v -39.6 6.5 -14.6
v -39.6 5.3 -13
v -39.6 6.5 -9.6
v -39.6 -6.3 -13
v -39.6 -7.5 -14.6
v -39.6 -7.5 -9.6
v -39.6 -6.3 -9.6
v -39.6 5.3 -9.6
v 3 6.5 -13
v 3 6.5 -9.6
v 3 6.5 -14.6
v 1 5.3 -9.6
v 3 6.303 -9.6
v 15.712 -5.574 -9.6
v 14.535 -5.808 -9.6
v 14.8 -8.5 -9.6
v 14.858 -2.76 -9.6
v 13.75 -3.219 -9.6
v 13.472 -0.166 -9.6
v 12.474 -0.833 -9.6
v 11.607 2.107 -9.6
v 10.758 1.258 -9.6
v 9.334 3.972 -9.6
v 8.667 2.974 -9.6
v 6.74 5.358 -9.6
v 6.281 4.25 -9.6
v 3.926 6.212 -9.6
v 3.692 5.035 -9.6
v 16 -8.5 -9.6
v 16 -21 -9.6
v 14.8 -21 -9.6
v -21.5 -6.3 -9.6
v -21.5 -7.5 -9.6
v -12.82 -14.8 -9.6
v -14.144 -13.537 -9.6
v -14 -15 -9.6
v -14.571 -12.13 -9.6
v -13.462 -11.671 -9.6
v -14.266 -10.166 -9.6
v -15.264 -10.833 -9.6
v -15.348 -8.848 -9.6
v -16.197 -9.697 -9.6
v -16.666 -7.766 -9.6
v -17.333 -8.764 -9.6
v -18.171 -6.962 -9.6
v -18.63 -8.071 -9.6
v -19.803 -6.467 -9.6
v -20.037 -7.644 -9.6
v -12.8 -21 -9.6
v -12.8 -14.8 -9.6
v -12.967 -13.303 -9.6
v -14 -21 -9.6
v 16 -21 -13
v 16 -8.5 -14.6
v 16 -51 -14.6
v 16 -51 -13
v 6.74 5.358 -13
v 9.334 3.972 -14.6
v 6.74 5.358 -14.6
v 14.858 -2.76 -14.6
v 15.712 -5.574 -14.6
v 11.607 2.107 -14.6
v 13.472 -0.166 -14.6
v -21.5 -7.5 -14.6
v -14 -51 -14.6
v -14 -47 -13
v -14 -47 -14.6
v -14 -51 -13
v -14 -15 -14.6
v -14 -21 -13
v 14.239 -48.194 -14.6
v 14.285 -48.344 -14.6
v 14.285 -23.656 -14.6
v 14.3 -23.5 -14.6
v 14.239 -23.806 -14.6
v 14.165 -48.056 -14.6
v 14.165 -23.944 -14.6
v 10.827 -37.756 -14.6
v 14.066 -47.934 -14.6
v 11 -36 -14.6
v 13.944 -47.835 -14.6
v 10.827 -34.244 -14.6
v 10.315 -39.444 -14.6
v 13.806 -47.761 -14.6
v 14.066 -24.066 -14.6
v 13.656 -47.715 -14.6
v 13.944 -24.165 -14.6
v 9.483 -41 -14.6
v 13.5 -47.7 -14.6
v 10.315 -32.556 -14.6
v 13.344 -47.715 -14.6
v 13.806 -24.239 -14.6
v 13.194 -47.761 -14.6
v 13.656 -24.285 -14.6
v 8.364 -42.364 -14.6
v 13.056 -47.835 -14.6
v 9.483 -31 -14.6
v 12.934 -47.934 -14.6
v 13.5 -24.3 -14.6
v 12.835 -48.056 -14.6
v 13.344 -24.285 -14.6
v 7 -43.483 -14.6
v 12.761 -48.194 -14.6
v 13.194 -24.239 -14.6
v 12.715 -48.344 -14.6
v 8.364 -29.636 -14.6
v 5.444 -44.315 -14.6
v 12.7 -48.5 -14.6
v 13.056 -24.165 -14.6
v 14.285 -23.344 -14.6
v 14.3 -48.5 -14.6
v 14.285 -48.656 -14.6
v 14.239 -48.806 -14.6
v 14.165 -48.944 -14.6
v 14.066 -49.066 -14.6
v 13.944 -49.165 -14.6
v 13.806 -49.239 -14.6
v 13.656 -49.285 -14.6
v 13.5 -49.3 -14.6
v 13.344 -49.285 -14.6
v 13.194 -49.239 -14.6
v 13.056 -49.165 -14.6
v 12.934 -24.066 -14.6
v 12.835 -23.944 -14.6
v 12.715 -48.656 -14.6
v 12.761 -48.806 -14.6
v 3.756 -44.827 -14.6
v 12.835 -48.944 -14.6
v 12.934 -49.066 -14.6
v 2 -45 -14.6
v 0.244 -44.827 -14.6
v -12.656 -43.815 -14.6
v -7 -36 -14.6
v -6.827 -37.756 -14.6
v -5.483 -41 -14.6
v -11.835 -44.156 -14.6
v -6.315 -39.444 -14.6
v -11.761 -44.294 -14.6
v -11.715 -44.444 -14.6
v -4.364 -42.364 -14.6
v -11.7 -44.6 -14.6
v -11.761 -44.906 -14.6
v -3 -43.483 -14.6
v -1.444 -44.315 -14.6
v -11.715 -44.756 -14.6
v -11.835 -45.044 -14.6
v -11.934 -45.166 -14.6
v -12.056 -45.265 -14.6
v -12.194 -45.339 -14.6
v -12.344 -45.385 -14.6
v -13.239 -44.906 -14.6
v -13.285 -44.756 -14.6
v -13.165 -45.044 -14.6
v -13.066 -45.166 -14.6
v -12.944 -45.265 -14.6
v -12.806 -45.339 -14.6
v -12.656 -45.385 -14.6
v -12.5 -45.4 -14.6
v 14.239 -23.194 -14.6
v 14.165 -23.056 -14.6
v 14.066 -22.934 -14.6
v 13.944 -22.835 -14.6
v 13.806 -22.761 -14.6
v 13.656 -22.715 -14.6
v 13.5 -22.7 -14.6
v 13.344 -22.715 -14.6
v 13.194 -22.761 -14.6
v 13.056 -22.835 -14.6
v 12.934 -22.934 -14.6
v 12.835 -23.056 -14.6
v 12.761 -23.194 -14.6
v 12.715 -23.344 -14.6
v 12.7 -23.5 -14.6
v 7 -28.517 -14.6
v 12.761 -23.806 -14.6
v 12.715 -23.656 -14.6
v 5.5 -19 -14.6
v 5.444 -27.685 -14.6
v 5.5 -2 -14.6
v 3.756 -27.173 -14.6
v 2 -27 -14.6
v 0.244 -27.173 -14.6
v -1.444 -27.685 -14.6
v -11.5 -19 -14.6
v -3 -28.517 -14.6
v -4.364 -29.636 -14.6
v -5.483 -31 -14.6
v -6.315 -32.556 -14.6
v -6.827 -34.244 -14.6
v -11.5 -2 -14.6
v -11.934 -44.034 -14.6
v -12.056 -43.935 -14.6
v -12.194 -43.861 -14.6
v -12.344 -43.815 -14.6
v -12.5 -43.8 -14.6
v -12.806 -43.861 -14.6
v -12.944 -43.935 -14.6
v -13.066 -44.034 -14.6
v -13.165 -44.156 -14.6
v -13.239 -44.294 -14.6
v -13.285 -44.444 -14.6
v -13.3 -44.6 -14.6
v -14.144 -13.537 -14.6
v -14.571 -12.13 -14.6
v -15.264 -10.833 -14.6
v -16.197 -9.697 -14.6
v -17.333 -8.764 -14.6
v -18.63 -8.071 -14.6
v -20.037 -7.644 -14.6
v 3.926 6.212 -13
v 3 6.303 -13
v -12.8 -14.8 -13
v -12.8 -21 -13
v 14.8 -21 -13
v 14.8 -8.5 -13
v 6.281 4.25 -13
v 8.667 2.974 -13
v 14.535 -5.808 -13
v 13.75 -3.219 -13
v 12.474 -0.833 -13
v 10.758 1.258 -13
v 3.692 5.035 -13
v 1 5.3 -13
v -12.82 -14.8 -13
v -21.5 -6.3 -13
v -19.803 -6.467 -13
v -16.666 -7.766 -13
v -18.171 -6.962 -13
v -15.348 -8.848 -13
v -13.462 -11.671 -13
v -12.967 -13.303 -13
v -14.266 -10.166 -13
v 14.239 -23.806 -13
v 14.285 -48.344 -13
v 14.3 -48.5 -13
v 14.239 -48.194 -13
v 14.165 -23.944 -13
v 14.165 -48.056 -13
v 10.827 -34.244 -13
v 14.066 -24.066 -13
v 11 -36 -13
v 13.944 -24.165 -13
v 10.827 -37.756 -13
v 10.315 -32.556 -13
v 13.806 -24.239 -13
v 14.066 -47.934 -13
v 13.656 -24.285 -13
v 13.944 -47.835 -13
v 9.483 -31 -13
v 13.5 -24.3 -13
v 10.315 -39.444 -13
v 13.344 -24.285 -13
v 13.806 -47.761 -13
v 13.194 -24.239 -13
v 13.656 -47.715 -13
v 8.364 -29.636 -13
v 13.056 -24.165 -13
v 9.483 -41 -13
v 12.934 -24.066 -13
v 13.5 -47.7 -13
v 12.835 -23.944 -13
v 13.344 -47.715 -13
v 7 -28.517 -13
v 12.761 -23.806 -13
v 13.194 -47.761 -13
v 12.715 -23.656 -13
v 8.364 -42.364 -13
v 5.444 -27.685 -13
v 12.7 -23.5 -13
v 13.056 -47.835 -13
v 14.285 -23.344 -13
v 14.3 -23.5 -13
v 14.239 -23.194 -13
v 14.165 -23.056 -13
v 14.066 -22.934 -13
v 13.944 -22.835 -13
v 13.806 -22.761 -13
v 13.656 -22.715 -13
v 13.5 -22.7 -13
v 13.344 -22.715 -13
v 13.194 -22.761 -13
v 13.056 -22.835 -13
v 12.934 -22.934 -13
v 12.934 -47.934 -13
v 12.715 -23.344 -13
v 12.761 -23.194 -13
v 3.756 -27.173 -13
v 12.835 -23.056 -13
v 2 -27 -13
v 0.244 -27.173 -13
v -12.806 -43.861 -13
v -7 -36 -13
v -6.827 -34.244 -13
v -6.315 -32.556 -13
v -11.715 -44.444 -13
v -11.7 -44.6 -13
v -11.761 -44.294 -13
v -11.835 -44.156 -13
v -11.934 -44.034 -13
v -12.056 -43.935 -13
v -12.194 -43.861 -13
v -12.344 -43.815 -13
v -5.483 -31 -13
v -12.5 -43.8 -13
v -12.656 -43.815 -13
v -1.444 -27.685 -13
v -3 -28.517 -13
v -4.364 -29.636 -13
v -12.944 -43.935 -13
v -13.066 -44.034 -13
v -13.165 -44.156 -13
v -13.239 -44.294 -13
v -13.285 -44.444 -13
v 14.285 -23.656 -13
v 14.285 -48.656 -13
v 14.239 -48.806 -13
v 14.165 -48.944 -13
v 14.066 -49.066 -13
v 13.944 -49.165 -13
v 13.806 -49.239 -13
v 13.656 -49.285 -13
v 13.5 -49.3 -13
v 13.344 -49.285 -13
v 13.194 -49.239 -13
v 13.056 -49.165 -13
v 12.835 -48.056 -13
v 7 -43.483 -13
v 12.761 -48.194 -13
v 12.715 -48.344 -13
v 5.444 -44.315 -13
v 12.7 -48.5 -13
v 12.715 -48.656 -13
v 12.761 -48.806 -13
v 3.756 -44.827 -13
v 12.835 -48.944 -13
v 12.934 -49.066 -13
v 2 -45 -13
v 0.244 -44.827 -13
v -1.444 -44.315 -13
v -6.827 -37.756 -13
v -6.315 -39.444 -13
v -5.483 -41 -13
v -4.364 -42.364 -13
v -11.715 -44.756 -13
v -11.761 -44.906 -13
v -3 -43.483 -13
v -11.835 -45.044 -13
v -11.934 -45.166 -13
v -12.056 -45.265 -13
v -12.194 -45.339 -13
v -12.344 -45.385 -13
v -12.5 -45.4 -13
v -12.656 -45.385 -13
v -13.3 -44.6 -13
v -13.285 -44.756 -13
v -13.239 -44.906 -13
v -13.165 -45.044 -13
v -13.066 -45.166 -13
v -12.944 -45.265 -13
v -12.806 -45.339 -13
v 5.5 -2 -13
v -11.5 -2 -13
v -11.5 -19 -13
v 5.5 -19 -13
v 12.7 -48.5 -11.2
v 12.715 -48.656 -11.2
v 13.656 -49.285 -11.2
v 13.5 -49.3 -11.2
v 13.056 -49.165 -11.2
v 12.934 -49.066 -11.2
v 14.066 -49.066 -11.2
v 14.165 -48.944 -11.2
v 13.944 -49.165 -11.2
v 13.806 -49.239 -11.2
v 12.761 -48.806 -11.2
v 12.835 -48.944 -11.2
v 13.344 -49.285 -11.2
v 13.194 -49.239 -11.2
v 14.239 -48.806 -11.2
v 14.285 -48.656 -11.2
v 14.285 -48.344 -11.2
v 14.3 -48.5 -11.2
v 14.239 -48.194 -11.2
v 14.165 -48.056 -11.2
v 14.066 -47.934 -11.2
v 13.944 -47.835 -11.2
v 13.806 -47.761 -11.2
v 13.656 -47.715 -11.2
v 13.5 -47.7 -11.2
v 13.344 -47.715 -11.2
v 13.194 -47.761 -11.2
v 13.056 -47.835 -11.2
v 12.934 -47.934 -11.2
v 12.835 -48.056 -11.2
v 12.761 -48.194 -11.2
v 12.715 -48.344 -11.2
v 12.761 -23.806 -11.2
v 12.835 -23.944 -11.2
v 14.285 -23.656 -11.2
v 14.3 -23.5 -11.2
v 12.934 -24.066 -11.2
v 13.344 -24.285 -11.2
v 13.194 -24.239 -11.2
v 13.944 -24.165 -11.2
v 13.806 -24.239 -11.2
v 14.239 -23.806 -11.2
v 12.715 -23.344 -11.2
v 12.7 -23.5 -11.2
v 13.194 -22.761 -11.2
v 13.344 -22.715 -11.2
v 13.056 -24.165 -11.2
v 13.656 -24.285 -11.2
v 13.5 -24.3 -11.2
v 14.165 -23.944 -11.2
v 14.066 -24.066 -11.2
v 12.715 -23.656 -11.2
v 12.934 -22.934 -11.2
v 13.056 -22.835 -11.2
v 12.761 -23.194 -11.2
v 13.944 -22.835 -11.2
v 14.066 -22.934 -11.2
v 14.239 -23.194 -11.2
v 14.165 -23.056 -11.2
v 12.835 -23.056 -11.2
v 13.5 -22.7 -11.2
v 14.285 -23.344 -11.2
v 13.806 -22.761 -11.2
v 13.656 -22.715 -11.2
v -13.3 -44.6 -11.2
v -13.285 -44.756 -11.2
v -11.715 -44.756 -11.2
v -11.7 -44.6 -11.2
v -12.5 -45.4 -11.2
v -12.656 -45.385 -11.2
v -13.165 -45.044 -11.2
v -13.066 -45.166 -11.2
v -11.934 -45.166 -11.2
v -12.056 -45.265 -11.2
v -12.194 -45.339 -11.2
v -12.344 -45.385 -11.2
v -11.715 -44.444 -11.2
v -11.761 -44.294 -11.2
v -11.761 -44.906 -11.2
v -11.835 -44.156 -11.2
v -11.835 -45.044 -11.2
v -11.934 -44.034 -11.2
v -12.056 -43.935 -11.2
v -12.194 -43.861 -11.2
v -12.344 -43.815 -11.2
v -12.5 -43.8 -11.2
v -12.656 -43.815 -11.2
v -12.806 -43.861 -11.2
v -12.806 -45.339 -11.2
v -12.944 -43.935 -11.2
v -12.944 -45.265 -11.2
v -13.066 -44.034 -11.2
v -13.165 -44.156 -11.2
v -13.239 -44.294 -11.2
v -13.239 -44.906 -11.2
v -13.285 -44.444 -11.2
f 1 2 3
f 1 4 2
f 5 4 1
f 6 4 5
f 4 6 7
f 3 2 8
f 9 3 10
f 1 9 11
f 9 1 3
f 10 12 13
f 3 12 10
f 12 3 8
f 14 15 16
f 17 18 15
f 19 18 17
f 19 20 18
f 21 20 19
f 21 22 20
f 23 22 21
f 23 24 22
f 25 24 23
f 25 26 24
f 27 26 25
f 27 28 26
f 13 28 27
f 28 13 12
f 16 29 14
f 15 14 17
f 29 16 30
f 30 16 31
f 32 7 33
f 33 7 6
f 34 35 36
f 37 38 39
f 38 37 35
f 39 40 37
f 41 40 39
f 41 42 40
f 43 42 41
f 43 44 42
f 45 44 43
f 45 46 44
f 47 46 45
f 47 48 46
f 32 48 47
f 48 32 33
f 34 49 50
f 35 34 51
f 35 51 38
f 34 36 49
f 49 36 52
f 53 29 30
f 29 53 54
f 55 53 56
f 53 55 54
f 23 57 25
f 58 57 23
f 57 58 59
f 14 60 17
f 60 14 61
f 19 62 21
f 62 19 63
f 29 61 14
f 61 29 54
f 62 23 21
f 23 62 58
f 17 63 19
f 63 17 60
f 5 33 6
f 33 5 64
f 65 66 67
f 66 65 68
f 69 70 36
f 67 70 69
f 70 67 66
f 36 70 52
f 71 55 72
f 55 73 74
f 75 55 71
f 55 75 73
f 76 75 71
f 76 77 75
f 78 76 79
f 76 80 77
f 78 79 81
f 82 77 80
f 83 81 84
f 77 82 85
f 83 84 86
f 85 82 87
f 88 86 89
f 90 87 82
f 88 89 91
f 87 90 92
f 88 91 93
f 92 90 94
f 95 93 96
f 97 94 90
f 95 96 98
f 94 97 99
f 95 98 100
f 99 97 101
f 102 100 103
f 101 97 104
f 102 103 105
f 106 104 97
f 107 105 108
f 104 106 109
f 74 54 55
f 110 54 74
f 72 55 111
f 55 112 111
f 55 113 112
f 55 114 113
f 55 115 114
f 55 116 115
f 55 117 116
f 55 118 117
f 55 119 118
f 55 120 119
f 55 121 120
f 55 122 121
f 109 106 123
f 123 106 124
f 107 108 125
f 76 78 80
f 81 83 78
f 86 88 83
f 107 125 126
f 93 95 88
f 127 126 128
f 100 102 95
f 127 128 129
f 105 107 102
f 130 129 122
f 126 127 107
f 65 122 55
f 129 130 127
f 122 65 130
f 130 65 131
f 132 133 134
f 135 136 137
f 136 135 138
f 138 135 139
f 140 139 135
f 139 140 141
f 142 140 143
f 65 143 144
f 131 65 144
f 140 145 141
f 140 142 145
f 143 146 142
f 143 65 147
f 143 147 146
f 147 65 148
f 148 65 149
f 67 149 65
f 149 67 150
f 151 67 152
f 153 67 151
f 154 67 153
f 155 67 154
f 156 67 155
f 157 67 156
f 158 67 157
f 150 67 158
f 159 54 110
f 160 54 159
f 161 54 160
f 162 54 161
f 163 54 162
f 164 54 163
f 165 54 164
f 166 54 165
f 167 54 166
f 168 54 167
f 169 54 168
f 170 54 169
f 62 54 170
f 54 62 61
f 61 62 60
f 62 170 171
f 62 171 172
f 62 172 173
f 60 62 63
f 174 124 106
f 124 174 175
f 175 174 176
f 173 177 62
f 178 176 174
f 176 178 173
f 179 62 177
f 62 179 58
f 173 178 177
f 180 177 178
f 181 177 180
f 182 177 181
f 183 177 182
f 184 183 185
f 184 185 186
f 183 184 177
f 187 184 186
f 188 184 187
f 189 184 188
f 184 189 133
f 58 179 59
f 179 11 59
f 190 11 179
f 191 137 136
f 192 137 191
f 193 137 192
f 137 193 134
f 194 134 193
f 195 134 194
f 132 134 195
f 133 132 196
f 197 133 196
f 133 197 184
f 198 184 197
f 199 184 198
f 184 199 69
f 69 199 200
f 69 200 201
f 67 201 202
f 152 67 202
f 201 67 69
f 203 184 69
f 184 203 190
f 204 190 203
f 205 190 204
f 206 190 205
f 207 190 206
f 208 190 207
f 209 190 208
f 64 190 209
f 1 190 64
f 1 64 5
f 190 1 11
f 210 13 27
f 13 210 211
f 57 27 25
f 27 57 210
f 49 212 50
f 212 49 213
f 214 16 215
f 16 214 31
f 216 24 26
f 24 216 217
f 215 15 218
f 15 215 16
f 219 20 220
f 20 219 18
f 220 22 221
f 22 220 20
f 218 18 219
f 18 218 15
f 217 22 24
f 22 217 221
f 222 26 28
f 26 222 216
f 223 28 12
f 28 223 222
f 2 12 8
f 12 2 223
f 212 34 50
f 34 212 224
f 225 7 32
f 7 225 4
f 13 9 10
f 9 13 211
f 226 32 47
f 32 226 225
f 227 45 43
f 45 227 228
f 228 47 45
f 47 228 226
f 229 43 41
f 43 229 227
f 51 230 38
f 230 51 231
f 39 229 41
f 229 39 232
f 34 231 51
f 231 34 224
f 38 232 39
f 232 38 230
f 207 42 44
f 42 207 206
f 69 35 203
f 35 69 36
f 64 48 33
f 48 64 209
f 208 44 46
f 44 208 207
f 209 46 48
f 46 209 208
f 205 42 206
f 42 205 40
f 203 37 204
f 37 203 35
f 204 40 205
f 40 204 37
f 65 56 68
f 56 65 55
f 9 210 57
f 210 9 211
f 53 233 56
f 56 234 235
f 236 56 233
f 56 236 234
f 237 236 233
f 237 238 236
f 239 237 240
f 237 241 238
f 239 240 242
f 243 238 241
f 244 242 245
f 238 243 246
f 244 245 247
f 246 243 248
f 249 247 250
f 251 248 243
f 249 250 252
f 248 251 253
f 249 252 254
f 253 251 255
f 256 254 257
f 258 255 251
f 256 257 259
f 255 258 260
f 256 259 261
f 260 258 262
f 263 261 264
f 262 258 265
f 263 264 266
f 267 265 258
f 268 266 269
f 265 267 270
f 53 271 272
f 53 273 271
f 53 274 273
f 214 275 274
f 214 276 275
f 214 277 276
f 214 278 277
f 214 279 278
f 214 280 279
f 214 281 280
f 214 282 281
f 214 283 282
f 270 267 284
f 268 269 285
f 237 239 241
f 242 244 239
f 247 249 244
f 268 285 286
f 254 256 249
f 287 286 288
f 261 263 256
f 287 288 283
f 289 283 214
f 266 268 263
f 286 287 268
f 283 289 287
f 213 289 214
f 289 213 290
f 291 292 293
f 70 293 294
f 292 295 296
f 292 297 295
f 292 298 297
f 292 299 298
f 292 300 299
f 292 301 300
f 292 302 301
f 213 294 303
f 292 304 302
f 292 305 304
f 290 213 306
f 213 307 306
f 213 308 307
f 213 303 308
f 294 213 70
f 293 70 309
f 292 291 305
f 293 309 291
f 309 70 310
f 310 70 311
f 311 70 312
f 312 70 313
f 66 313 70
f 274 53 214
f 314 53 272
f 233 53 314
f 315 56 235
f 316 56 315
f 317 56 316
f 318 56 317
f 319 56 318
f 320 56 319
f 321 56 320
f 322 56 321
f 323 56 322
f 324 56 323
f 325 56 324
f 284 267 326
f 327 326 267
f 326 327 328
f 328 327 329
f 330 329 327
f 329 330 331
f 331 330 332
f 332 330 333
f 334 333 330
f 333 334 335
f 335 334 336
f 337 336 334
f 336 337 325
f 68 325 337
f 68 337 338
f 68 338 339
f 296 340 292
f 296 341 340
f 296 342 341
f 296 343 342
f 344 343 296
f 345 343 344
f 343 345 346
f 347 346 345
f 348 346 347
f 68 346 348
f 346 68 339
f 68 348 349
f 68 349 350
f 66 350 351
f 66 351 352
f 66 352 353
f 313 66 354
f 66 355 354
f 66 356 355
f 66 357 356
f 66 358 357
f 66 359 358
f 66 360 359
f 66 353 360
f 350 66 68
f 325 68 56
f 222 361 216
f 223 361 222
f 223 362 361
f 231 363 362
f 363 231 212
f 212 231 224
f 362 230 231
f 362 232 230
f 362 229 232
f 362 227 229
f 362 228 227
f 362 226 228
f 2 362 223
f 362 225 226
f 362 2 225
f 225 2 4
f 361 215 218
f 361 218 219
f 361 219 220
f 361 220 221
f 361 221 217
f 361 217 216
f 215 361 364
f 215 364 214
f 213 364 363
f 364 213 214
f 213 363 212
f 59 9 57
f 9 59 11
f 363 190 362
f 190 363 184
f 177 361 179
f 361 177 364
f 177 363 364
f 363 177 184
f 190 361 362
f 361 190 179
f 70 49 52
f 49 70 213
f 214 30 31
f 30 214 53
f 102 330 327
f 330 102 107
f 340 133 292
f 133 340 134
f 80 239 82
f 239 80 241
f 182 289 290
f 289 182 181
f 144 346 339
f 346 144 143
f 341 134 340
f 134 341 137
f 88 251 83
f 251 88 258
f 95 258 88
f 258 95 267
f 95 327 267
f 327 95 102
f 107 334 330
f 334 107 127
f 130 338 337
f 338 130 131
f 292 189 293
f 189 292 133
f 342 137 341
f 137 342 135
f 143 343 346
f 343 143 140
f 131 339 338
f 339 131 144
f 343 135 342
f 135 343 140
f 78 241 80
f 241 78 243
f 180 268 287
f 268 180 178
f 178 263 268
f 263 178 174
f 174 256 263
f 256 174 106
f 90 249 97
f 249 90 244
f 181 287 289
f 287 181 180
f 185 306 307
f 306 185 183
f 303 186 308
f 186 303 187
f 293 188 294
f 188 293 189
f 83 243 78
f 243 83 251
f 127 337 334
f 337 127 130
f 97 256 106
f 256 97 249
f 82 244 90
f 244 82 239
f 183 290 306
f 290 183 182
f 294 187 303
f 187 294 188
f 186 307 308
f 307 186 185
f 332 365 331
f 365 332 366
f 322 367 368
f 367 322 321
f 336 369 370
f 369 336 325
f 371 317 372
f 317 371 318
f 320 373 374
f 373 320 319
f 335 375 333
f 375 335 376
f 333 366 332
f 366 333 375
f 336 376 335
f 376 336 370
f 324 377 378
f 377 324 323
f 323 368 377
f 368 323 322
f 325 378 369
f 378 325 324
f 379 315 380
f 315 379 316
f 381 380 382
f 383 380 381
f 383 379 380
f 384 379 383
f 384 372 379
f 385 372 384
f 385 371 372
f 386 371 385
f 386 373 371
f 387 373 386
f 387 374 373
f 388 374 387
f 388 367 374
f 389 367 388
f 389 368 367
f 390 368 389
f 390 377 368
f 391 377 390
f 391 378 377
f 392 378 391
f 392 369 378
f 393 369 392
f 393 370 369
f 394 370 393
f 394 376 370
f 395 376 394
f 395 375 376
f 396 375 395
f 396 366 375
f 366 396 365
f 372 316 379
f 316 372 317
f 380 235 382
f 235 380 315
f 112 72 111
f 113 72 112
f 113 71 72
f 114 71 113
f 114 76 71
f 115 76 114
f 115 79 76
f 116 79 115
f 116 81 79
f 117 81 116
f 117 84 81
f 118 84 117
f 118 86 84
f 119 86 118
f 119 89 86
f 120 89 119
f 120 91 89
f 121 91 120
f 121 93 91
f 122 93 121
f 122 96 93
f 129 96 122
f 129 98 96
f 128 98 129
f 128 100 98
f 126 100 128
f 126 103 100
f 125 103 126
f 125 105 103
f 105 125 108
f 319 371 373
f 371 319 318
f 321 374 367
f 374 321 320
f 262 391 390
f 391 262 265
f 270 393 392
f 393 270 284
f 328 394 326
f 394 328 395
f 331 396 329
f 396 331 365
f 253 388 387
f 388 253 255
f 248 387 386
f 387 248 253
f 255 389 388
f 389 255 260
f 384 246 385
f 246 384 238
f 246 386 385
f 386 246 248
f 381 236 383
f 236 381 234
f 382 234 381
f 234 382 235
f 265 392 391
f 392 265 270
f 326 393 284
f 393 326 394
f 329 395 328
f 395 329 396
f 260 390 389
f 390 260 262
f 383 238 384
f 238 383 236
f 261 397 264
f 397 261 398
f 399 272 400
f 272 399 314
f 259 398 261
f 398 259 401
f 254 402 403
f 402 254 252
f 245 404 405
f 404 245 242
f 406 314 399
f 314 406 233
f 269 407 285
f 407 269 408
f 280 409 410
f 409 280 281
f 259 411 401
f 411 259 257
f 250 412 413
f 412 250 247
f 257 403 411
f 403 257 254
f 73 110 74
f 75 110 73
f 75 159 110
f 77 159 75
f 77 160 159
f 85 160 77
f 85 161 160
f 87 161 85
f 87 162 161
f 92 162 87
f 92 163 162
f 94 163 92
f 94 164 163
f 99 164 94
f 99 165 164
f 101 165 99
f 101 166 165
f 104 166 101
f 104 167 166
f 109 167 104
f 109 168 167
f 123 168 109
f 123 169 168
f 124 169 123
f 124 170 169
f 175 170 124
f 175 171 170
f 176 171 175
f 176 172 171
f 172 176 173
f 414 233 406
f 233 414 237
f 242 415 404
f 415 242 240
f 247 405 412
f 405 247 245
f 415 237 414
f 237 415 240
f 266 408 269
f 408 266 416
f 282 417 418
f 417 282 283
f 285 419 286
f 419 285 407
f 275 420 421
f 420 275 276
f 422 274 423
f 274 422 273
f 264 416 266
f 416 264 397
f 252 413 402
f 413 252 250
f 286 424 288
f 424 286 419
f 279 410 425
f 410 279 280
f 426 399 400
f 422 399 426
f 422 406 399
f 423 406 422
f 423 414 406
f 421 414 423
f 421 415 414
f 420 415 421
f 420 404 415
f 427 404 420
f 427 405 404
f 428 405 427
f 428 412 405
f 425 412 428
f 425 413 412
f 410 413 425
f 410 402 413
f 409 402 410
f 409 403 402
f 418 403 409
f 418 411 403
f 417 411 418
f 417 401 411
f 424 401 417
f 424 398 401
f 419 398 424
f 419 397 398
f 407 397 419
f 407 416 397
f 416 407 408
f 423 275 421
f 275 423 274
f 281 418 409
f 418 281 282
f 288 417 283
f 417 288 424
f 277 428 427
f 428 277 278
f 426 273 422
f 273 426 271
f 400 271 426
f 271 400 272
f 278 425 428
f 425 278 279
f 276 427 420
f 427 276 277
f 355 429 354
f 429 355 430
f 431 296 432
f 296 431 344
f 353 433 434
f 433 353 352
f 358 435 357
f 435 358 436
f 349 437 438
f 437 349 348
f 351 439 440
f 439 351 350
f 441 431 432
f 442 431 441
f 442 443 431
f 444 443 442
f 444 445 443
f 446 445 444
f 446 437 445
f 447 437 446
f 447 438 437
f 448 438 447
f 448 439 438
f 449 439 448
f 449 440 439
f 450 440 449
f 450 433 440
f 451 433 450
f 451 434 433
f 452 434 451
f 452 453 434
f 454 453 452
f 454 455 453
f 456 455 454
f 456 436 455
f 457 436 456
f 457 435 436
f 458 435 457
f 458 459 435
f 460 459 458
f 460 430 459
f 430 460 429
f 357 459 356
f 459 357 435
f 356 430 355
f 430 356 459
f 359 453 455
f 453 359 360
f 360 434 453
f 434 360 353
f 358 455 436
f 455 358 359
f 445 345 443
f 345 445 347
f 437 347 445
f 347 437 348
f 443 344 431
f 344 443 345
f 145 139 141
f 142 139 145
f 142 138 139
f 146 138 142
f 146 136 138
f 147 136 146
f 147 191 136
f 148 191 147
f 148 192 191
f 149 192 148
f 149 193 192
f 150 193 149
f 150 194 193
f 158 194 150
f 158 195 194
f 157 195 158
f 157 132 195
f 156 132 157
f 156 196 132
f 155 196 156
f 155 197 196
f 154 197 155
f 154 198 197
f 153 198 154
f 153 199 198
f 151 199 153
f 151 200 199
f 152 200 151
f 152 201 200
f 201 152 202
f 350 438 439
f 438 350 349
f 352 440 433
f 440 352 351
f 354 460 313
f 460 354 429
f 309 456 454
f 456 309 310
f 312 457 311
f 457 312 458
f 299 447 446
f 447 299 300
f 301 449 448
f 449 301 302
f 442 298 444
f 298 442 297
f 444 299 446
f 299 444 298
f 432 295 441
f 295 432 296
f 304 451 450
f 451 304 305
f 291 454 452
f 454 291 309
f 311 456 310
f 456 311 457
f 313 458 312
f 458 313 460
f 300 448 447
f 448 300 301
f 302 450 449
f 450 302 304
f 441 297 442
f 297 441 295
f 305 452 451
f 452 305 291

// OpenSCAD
//lol my idea for a fan duct in the cartridge slot.

$fn=32;

//measurements

//cart lip z
cz=8;

//between case plastic and top of cartridge "notches"
//py=39;

//from bottom of lower peg to cart top lip
py=27-4;

//outside cartridge slot y
mx=61.6;

//px=0; //redefined later.

//cart plate thickness
pz=1.6;

//lower mount offset x
lmox=62;

// upper left mount offset y (from lower)
ulmoy=19;

// upper right mount offset y (from lower)
urmoy=13;

// mount diameter
md=4;

//plate-x
px=lmox+md;

//fan dimensions
fx=30;
fy=30;
fz=3.4;
//aperture
fad=18;
//aperture x offset
faxo=-1;

//fan y offset
fyo=2;

fxo=4;

//mount hole dia
fmhd=1.6;

//mount hole coord
//top
ftmhy=27.5;
ftmhx=2.5;

//side
fsmhy=2.5;
fsmhx=2.5;

//lower
flmhy=8.6+fx/2;
flmhx=28.5;

//hold diameter
hd=1.8;

//shroud stuff
//wall thickness
wt=1.2;

//heatsink
hsx=17;
hsy=17;
hsz=6;

//cpu
cpuxo=-3;

//duct extra y
dey=2;

//for other modules
hclearance=8.6;
vclearance=14.25;

//translate([-fx/2+cpuxo,hsy,cz+pz])
//translate([-fx/2,-fy/2,fz/2])
//fan();
//fan_mount_holes();

//final_part();
top_duct_print();
//bottom_plate_print();

module top_duct_print(){
rotate([180,0,0])
top_duct();
}

module bottom_plate_print(){
    difference() {
        final_part();
        fan_cut_block();
        upper_cut_box();
        cartplate_mounts();
        cartplate_mount_holes();
    }
}

module top_duct(){
union() {
        difference() {
            final_part();
            fan_cut_block();
            lower_cut_box();
        //        cartplate_mounts();
        //        cartplate_mount_holes();
        }
            translate([cpuxo+fxo,py+fy/2-fyo,cz+pz+pz])
            //rotate([0,0,-90])
        mirror()    
        fan_mount_holes();


    }
}
//final_part();
module final_part() {
union(){
    duct_base();
    fan_entry();
    duct_bottom_walls();
    duct_corner_wall();
//    translate([cpuxo,py+fy/2-fyo,cz+pz+pz])
//    rotate([0,0,-90])
//    #fan_mount_holes();

    difference() {
    translate([0,0,fz+pz])
        duct_base();
        
        heatsink_cut();
    }
    difference() {
        base_plate();
        cartplate_mounts();
        cartplate_mount_holes();

    }
    }
}



module duct_base() {
difference() {
    duct_outside_body();
    duct_inside_cut();
    //fan body
//    translate([cpuxo-fx/2,hsy,cz])
//    #cube([fx,fy,fz]);
 //   hull_cut();
    }
    //heatsink_cut();
}

//translate([-px/2-hclearance+md/2,hsy/2+md/2-fy/2-dey,pz+cz])
//cube([fx/2,fy/2,fz]);

//fan_entry();
module fan_entry() {
    difference() {
        hull() {
            //fan body outside
            translate([cpuxo+fxo-fx/2,hsy,cz])
            cube([fx,fy,pz*2+fz]);

            //corner outside
            translate([cpuxo+fxo,hsy/2+md/2-dey,cz])
            cylinder(r=fx/2, h=pz*2+fz);
        }
        hull() {
            //fan body inside
            translate([cpuxo+fxo-fx/2+wt,hsy,cz])
            cube([fx-wt*2,fy,pz*2+fz]);

            //corner inside
            translate([cpuxo+fxo,hsy/2+md/2-dey,cz])
            cylinder(r=fx/2-wt, h=pz*2+fz);
        }
        //corner cut
        translate([cpuxo+fxo-fx/2,hsy/2+md/2-dey-fx/8,cz+fz/2+pz])
        cube([fx,fy-wt*2-fx/4,pz*2+fz], center=true);


    }
}

//duct_corner_wall();
module duct_corner_wall() {
translate([cpuxo+fxo-fx/2-fx/4,fy/2,cz])
    difference(){
            cylinder(d=fx/2+wt*2, h=fz+pz*2);
            cylinder(d=fx/2, h=fz+pz*2);
            translate([-fx/4,0,0])
            cube([fx/2,fx/2,fz+pz*2]);
            translate([-fx/2,-fx/4,0])
            cube([fx/2,fx/2,fz+pz*2]);

    }
}

////translate([-(px/2+hclearance+cpuxo),0,0])
////cube([px/2+hclearance+cpuxo,py,cz+pz+2]);
//
//    translate([cpuxo-fx/2-fx/4,0,0])
//    cube([10,10,fz]);
//
//    translate([-hclearance/2+md/4,py/2,cz])
//    translate([-(px+hclearance-md/2)/2,0,0])
//    cube([px+hclearance-md/2, 10, 10]);
//
//    translate([-hclearance/2+md/4-(px+hclearance-md/2)/2,py/2,0])
//    cube([10,10,10]);
//
//    translate([-hclearance/2+md/4-(px+hclearance-md/2)/2,py/2,0])
//    cube([abs(cpuxo-fx/2-fx/4-hclearance/2+md/4-(px+hclearance-md/2)/2),10,10]);


//    //side opening
//    translate([-px/2-hclearance+md/2,hsy/2+md/2-fy/2-dey,pz+cz])
//    //#cube([px/2+cpuxo+hclearance,wt,fz]);
//    #cube([abs(cpuxo-fx/2-fx/4),fy/2,pz+cz]);

//translate([cpuxo-fx/2-fx/4,0,0])
//cube([10,10,10]);

//translate([-px/2-hclearance+md/2,0,0])
//cube([abs(-px/2-hclearance+md/2)-abs(cpuxo-fx/2-fx/4),10,10]);

//duct_bottom_walls();
module duct_bottom_walls() {
    translate([-px/2-hclearance+md/2,fy/2-wt-fx/4,cz])
    //#cylinder(d=fx/2, h=fz);
    cube([abs(-px/2-hclearance+md/2)-abs(cpuxo+fxo-fx/2-fx/4),wt,fz+pz*2]);
    
    translate([-px/2-hclearance+md/2,hsy/2+md/2-dey-fy/2,cz])
    //cylinder(r=fx/2, h=fz);
    cube([px/2+cpuxo+fxo+hclearance,wt,fz+pz*2]);
    
}

module duct_outside_body() {
    color("yellow") hull() {
    
    //side opening
    translate([-px/2-hclearance+md/2,hsy/2+md/2-fy/2-dey,cz])
    cube([px/2+cpuxo+fxo+hclearance,py,pz]);

    //fan body
    translate([cpuxo+fxo-fx/2,py-fyo,cz])
    cube([fx,fy,pz]);

    //corner 
    translate([cpuxo+fxo,hsy/2+md/2-dey,cz])
    cylinder(r=fx/2, h=pz);
    }
}

module duct_inside_cut() {
    color ("green") hull() {
        translate([cpuxo+fxo-fx/2-fx/4,fy/2,cz])
        cylinder(d=fx/2, h=pz);

        translate([-fx+cpuxo+fxo,fy+py,cz])
        cube([fx/2, fy/2, pz]);

        translate([-px,fy/4,cz])
        cube([fx/2, fy/2, pz]);
    }
}

module upper_cut_box(){
    translate([0,fy/2,pz*5+cz+pz])
    cube([px+fx*2,py+fy*2,pz*10], center=true);
}

//lower_cut_box();
module lower_cut_box(){
    translate([0,fy/2,cz/2+pz/2])
    cube([px+fx*2,py+fy*2,cz+pz], center=true);
}

//final_part();
//module final_part() {
//    difference(){
//        union() {
//        base_plate();
////        base_block();
////        shroud_assembly();
//
//        }
//    cartplate_mounts();
//    cartplate_mount_holes();
////    fan_body();
////    heatsink_cut();
////    cut_box();
//    }
//}

//fan_cut_block();
module fan_cut_block() {
    translate([cpuxo+fxo-fx/2,py-fyo,cz])
    cube([fx, fy, fz+pz]);
        
//    translate([cpuxo,py+fy/2-fyo,cz+pz+pz])
//    rotate([0,0,-90])
//    fan_mount_holes(); 
    
    translate([cpuxo+fxo-faxo,py+fy/2-fyo,cz+pz*2])
    #cylinder(d=fad,h=fz*2,center=true);
}

//heatsink cut
module heatsink_cut() {
    translate([cpuxo,hsy/2+md/2,cz+pz])
    cube([hsx,hsy,hsz*2],center=true);
}


//shroud_assembly();
module shroud_assembly() {
    
difference() {
    top_shroud();
    //cartplate_mount_sinks();
    cartplate_mount_holes();
    //fan_mount_holes();
}

}

//translate([-fx/2,(py-fx)-20,pz+cz])
//fan();
module fan() {
    translate([fx/2,fy/2,fz/2])
    color("gray")
    difference() {
    cube([fx,fy,fz], center=true);
    cylinder(d=fad,h=fz,center=true);
    translate([0,fy,2])
    fan_mount_holes();
    }
}

//fan_body();
module fan_body() {
    translate([0,py/2+fy/2,pz+cz+fz/2])

    cube([fx,fy,fz], center=true);
    fan_mount_holes();
}

module fan_mount_holes() {
     //top
    translate([ftmhx-fx/2,ftmhy-fy/2,0])
    cylinder(d=fmhd, h=fz);
    
    //side
    translate([fsmhx-fx/2,fsmhy-fy/2,0])
    cylinder(d=fmhd, h=fz);

    //lower
    translate([flmhx-fx/2,flmhy-fy/2,0])
    cylinder(d=fmhd, h=fz);
//    translate([ftmhx-fx/2,ftmhy/2-fmhd/2,0])
//    cylinder(d=fmhd, h=fz);
//
//    translate([-ftmhx+fx/2,ftmhy/2-fmhd/2,0])
//    cylinder(d=fmhd, h=fz);
//    
//    translate([-fy/2+flmhx,flmhy-fy/2,0])
//    #cylinder(d=fmhd, h=fz);
}

//cartplate_mounts();
module cartplate_mounts() {
    translate([0,md/2,0]) {
        //lower mounts
        for(x=[-lmox/2:lmox:lmox/2])
            translate([x,0,0])
            cylinder(d=md,h=cz);

        //upper left mount
        translate([-lmox/2, ulmoy, 0])
        cylinder(d=md,h=cz);

        //upper left mount
        translate([lmox/2, urmoy, 0])
        cylinder(d=md,h=cz);
    }
}

//cartplate_mount_holes();
module cartplate_mount_holes() {
    translate([0,md/2,0]) {
        //lower mounts
        for(x=[-lmox/2:lmox:lmox/2])
            translate([x,0,0])
            cylinder(d=hd,h=30);

        //upper left mount
        translate([-lmox/2, ulmoy, 0])
        cylinder(d=hd,h=30);

        //upper left mount
        translate([lmox/2, urmoy, 0])
        cylinder(d=hd,h=30);
    }
}

//cartplate_mount_sinks();
module cartplate_mount_sinks() {
    translate([0,md/2,cz+pz]) {
        //lower mounts
        for(x=[-lmox/2:lmox:lmox/2])
            translate([x,0,0])
            cylinder(d=md,h=30);

        //upper left mount
        translate([-lmox/2, ulmoy, 0])
        cylinder(d=md,h=30);

        //upper left mount
        translate([lmox/2, urmoy, 0])
        cylinder(d=md,h=30);
    }
}

//cartplate_mount_braces();
module cartplate_mount_braces() {
    translate([0,md/2,cz+pz]) {
        //lower mounts
        for(x=[-lmox/2:lmox:lmox/2])
            translate([x,0,0])
            cylinder(d=md+wt*2,h=30);

        //upper left mount
        translate([-lmox/2, ulmoy, 0])
        cylinder(d=md+wt*2,h=30);

        //upper left mount
        translate([lmox/2, urmoy, 0])
        cylinder(d=md+wt*2,h=30);
    }
}

//module base_plate() {
////    translate([0,py/2,pz/2+cz])
////    cube([px, py, pz], center=true);
//    translate([-hclearance/2+md/4,py/2,cz])
//    cheese(px+hclearance-md/2, py, pz, md/2);
//}

module base_plate() {
//    translate([0,py/2,pz/2+cz])
//    cube([px, py, pz], center=true);
    translate([0,py/2,cz])
    cheese(px, py, pz, md/2);
}

//top_shroud();
module top_shroud() {
    difference() {
        translate([-hclearance/2-fx/4+md/4,py/2,cz+pz])
        color("orange") cheese(px+hclearance-md/2-fx/2, py, fz+wt, md/2);
        shroud_cut();
    }
}

//shroud_cut();
module shroud_cut() {
hull() {
    translate([-fx*2,wt,cz+pz])
    cube([(px/2+hclearance+md/2-fx/2),py-wt*2,fz]);


    //fan cut
    translate([fx/2-fx/4,(py-fx)-20+fy+wt,cz+pz])
    cylinder(d=fx/2,h=fz);

    //fan cut
    translate([fx/2-fx/4,py-wt-fx/4,cz+pz])
    cylinder(d=fx/2,h=fz);

    //fan cut
    translate([-fx,py-wt-fx/4,cz+pz])
    cylinder(d=fx/2,h=fz);
}
}

//base_block();
module base_block(){
    translate([lmox/2,0,hclearance]) {
    union() {
        rotate([90,0,180])
        intersection() {
        difference(){
                cylinder(h=py, r=hclearance);

                translate([-hclearance,0,0])
                cube([hclearance*2,hclearance*2,py]);

                translate([0,-hclearance,0])
                cube([hclearance*2,hclearance*2,py]);
            }
            rotate([-90,0,0])
            translate([0,-py/2,-hclearance])
            cheese(hclearance*2,py,cz+pz, md/2);
            }
        }
    }
}

module cheese(x,y,z,r) {
linear_extrude(height=z) offset(-r) offset(r) offset(r) offset(-r)
    square([x,y], center=true);
}
